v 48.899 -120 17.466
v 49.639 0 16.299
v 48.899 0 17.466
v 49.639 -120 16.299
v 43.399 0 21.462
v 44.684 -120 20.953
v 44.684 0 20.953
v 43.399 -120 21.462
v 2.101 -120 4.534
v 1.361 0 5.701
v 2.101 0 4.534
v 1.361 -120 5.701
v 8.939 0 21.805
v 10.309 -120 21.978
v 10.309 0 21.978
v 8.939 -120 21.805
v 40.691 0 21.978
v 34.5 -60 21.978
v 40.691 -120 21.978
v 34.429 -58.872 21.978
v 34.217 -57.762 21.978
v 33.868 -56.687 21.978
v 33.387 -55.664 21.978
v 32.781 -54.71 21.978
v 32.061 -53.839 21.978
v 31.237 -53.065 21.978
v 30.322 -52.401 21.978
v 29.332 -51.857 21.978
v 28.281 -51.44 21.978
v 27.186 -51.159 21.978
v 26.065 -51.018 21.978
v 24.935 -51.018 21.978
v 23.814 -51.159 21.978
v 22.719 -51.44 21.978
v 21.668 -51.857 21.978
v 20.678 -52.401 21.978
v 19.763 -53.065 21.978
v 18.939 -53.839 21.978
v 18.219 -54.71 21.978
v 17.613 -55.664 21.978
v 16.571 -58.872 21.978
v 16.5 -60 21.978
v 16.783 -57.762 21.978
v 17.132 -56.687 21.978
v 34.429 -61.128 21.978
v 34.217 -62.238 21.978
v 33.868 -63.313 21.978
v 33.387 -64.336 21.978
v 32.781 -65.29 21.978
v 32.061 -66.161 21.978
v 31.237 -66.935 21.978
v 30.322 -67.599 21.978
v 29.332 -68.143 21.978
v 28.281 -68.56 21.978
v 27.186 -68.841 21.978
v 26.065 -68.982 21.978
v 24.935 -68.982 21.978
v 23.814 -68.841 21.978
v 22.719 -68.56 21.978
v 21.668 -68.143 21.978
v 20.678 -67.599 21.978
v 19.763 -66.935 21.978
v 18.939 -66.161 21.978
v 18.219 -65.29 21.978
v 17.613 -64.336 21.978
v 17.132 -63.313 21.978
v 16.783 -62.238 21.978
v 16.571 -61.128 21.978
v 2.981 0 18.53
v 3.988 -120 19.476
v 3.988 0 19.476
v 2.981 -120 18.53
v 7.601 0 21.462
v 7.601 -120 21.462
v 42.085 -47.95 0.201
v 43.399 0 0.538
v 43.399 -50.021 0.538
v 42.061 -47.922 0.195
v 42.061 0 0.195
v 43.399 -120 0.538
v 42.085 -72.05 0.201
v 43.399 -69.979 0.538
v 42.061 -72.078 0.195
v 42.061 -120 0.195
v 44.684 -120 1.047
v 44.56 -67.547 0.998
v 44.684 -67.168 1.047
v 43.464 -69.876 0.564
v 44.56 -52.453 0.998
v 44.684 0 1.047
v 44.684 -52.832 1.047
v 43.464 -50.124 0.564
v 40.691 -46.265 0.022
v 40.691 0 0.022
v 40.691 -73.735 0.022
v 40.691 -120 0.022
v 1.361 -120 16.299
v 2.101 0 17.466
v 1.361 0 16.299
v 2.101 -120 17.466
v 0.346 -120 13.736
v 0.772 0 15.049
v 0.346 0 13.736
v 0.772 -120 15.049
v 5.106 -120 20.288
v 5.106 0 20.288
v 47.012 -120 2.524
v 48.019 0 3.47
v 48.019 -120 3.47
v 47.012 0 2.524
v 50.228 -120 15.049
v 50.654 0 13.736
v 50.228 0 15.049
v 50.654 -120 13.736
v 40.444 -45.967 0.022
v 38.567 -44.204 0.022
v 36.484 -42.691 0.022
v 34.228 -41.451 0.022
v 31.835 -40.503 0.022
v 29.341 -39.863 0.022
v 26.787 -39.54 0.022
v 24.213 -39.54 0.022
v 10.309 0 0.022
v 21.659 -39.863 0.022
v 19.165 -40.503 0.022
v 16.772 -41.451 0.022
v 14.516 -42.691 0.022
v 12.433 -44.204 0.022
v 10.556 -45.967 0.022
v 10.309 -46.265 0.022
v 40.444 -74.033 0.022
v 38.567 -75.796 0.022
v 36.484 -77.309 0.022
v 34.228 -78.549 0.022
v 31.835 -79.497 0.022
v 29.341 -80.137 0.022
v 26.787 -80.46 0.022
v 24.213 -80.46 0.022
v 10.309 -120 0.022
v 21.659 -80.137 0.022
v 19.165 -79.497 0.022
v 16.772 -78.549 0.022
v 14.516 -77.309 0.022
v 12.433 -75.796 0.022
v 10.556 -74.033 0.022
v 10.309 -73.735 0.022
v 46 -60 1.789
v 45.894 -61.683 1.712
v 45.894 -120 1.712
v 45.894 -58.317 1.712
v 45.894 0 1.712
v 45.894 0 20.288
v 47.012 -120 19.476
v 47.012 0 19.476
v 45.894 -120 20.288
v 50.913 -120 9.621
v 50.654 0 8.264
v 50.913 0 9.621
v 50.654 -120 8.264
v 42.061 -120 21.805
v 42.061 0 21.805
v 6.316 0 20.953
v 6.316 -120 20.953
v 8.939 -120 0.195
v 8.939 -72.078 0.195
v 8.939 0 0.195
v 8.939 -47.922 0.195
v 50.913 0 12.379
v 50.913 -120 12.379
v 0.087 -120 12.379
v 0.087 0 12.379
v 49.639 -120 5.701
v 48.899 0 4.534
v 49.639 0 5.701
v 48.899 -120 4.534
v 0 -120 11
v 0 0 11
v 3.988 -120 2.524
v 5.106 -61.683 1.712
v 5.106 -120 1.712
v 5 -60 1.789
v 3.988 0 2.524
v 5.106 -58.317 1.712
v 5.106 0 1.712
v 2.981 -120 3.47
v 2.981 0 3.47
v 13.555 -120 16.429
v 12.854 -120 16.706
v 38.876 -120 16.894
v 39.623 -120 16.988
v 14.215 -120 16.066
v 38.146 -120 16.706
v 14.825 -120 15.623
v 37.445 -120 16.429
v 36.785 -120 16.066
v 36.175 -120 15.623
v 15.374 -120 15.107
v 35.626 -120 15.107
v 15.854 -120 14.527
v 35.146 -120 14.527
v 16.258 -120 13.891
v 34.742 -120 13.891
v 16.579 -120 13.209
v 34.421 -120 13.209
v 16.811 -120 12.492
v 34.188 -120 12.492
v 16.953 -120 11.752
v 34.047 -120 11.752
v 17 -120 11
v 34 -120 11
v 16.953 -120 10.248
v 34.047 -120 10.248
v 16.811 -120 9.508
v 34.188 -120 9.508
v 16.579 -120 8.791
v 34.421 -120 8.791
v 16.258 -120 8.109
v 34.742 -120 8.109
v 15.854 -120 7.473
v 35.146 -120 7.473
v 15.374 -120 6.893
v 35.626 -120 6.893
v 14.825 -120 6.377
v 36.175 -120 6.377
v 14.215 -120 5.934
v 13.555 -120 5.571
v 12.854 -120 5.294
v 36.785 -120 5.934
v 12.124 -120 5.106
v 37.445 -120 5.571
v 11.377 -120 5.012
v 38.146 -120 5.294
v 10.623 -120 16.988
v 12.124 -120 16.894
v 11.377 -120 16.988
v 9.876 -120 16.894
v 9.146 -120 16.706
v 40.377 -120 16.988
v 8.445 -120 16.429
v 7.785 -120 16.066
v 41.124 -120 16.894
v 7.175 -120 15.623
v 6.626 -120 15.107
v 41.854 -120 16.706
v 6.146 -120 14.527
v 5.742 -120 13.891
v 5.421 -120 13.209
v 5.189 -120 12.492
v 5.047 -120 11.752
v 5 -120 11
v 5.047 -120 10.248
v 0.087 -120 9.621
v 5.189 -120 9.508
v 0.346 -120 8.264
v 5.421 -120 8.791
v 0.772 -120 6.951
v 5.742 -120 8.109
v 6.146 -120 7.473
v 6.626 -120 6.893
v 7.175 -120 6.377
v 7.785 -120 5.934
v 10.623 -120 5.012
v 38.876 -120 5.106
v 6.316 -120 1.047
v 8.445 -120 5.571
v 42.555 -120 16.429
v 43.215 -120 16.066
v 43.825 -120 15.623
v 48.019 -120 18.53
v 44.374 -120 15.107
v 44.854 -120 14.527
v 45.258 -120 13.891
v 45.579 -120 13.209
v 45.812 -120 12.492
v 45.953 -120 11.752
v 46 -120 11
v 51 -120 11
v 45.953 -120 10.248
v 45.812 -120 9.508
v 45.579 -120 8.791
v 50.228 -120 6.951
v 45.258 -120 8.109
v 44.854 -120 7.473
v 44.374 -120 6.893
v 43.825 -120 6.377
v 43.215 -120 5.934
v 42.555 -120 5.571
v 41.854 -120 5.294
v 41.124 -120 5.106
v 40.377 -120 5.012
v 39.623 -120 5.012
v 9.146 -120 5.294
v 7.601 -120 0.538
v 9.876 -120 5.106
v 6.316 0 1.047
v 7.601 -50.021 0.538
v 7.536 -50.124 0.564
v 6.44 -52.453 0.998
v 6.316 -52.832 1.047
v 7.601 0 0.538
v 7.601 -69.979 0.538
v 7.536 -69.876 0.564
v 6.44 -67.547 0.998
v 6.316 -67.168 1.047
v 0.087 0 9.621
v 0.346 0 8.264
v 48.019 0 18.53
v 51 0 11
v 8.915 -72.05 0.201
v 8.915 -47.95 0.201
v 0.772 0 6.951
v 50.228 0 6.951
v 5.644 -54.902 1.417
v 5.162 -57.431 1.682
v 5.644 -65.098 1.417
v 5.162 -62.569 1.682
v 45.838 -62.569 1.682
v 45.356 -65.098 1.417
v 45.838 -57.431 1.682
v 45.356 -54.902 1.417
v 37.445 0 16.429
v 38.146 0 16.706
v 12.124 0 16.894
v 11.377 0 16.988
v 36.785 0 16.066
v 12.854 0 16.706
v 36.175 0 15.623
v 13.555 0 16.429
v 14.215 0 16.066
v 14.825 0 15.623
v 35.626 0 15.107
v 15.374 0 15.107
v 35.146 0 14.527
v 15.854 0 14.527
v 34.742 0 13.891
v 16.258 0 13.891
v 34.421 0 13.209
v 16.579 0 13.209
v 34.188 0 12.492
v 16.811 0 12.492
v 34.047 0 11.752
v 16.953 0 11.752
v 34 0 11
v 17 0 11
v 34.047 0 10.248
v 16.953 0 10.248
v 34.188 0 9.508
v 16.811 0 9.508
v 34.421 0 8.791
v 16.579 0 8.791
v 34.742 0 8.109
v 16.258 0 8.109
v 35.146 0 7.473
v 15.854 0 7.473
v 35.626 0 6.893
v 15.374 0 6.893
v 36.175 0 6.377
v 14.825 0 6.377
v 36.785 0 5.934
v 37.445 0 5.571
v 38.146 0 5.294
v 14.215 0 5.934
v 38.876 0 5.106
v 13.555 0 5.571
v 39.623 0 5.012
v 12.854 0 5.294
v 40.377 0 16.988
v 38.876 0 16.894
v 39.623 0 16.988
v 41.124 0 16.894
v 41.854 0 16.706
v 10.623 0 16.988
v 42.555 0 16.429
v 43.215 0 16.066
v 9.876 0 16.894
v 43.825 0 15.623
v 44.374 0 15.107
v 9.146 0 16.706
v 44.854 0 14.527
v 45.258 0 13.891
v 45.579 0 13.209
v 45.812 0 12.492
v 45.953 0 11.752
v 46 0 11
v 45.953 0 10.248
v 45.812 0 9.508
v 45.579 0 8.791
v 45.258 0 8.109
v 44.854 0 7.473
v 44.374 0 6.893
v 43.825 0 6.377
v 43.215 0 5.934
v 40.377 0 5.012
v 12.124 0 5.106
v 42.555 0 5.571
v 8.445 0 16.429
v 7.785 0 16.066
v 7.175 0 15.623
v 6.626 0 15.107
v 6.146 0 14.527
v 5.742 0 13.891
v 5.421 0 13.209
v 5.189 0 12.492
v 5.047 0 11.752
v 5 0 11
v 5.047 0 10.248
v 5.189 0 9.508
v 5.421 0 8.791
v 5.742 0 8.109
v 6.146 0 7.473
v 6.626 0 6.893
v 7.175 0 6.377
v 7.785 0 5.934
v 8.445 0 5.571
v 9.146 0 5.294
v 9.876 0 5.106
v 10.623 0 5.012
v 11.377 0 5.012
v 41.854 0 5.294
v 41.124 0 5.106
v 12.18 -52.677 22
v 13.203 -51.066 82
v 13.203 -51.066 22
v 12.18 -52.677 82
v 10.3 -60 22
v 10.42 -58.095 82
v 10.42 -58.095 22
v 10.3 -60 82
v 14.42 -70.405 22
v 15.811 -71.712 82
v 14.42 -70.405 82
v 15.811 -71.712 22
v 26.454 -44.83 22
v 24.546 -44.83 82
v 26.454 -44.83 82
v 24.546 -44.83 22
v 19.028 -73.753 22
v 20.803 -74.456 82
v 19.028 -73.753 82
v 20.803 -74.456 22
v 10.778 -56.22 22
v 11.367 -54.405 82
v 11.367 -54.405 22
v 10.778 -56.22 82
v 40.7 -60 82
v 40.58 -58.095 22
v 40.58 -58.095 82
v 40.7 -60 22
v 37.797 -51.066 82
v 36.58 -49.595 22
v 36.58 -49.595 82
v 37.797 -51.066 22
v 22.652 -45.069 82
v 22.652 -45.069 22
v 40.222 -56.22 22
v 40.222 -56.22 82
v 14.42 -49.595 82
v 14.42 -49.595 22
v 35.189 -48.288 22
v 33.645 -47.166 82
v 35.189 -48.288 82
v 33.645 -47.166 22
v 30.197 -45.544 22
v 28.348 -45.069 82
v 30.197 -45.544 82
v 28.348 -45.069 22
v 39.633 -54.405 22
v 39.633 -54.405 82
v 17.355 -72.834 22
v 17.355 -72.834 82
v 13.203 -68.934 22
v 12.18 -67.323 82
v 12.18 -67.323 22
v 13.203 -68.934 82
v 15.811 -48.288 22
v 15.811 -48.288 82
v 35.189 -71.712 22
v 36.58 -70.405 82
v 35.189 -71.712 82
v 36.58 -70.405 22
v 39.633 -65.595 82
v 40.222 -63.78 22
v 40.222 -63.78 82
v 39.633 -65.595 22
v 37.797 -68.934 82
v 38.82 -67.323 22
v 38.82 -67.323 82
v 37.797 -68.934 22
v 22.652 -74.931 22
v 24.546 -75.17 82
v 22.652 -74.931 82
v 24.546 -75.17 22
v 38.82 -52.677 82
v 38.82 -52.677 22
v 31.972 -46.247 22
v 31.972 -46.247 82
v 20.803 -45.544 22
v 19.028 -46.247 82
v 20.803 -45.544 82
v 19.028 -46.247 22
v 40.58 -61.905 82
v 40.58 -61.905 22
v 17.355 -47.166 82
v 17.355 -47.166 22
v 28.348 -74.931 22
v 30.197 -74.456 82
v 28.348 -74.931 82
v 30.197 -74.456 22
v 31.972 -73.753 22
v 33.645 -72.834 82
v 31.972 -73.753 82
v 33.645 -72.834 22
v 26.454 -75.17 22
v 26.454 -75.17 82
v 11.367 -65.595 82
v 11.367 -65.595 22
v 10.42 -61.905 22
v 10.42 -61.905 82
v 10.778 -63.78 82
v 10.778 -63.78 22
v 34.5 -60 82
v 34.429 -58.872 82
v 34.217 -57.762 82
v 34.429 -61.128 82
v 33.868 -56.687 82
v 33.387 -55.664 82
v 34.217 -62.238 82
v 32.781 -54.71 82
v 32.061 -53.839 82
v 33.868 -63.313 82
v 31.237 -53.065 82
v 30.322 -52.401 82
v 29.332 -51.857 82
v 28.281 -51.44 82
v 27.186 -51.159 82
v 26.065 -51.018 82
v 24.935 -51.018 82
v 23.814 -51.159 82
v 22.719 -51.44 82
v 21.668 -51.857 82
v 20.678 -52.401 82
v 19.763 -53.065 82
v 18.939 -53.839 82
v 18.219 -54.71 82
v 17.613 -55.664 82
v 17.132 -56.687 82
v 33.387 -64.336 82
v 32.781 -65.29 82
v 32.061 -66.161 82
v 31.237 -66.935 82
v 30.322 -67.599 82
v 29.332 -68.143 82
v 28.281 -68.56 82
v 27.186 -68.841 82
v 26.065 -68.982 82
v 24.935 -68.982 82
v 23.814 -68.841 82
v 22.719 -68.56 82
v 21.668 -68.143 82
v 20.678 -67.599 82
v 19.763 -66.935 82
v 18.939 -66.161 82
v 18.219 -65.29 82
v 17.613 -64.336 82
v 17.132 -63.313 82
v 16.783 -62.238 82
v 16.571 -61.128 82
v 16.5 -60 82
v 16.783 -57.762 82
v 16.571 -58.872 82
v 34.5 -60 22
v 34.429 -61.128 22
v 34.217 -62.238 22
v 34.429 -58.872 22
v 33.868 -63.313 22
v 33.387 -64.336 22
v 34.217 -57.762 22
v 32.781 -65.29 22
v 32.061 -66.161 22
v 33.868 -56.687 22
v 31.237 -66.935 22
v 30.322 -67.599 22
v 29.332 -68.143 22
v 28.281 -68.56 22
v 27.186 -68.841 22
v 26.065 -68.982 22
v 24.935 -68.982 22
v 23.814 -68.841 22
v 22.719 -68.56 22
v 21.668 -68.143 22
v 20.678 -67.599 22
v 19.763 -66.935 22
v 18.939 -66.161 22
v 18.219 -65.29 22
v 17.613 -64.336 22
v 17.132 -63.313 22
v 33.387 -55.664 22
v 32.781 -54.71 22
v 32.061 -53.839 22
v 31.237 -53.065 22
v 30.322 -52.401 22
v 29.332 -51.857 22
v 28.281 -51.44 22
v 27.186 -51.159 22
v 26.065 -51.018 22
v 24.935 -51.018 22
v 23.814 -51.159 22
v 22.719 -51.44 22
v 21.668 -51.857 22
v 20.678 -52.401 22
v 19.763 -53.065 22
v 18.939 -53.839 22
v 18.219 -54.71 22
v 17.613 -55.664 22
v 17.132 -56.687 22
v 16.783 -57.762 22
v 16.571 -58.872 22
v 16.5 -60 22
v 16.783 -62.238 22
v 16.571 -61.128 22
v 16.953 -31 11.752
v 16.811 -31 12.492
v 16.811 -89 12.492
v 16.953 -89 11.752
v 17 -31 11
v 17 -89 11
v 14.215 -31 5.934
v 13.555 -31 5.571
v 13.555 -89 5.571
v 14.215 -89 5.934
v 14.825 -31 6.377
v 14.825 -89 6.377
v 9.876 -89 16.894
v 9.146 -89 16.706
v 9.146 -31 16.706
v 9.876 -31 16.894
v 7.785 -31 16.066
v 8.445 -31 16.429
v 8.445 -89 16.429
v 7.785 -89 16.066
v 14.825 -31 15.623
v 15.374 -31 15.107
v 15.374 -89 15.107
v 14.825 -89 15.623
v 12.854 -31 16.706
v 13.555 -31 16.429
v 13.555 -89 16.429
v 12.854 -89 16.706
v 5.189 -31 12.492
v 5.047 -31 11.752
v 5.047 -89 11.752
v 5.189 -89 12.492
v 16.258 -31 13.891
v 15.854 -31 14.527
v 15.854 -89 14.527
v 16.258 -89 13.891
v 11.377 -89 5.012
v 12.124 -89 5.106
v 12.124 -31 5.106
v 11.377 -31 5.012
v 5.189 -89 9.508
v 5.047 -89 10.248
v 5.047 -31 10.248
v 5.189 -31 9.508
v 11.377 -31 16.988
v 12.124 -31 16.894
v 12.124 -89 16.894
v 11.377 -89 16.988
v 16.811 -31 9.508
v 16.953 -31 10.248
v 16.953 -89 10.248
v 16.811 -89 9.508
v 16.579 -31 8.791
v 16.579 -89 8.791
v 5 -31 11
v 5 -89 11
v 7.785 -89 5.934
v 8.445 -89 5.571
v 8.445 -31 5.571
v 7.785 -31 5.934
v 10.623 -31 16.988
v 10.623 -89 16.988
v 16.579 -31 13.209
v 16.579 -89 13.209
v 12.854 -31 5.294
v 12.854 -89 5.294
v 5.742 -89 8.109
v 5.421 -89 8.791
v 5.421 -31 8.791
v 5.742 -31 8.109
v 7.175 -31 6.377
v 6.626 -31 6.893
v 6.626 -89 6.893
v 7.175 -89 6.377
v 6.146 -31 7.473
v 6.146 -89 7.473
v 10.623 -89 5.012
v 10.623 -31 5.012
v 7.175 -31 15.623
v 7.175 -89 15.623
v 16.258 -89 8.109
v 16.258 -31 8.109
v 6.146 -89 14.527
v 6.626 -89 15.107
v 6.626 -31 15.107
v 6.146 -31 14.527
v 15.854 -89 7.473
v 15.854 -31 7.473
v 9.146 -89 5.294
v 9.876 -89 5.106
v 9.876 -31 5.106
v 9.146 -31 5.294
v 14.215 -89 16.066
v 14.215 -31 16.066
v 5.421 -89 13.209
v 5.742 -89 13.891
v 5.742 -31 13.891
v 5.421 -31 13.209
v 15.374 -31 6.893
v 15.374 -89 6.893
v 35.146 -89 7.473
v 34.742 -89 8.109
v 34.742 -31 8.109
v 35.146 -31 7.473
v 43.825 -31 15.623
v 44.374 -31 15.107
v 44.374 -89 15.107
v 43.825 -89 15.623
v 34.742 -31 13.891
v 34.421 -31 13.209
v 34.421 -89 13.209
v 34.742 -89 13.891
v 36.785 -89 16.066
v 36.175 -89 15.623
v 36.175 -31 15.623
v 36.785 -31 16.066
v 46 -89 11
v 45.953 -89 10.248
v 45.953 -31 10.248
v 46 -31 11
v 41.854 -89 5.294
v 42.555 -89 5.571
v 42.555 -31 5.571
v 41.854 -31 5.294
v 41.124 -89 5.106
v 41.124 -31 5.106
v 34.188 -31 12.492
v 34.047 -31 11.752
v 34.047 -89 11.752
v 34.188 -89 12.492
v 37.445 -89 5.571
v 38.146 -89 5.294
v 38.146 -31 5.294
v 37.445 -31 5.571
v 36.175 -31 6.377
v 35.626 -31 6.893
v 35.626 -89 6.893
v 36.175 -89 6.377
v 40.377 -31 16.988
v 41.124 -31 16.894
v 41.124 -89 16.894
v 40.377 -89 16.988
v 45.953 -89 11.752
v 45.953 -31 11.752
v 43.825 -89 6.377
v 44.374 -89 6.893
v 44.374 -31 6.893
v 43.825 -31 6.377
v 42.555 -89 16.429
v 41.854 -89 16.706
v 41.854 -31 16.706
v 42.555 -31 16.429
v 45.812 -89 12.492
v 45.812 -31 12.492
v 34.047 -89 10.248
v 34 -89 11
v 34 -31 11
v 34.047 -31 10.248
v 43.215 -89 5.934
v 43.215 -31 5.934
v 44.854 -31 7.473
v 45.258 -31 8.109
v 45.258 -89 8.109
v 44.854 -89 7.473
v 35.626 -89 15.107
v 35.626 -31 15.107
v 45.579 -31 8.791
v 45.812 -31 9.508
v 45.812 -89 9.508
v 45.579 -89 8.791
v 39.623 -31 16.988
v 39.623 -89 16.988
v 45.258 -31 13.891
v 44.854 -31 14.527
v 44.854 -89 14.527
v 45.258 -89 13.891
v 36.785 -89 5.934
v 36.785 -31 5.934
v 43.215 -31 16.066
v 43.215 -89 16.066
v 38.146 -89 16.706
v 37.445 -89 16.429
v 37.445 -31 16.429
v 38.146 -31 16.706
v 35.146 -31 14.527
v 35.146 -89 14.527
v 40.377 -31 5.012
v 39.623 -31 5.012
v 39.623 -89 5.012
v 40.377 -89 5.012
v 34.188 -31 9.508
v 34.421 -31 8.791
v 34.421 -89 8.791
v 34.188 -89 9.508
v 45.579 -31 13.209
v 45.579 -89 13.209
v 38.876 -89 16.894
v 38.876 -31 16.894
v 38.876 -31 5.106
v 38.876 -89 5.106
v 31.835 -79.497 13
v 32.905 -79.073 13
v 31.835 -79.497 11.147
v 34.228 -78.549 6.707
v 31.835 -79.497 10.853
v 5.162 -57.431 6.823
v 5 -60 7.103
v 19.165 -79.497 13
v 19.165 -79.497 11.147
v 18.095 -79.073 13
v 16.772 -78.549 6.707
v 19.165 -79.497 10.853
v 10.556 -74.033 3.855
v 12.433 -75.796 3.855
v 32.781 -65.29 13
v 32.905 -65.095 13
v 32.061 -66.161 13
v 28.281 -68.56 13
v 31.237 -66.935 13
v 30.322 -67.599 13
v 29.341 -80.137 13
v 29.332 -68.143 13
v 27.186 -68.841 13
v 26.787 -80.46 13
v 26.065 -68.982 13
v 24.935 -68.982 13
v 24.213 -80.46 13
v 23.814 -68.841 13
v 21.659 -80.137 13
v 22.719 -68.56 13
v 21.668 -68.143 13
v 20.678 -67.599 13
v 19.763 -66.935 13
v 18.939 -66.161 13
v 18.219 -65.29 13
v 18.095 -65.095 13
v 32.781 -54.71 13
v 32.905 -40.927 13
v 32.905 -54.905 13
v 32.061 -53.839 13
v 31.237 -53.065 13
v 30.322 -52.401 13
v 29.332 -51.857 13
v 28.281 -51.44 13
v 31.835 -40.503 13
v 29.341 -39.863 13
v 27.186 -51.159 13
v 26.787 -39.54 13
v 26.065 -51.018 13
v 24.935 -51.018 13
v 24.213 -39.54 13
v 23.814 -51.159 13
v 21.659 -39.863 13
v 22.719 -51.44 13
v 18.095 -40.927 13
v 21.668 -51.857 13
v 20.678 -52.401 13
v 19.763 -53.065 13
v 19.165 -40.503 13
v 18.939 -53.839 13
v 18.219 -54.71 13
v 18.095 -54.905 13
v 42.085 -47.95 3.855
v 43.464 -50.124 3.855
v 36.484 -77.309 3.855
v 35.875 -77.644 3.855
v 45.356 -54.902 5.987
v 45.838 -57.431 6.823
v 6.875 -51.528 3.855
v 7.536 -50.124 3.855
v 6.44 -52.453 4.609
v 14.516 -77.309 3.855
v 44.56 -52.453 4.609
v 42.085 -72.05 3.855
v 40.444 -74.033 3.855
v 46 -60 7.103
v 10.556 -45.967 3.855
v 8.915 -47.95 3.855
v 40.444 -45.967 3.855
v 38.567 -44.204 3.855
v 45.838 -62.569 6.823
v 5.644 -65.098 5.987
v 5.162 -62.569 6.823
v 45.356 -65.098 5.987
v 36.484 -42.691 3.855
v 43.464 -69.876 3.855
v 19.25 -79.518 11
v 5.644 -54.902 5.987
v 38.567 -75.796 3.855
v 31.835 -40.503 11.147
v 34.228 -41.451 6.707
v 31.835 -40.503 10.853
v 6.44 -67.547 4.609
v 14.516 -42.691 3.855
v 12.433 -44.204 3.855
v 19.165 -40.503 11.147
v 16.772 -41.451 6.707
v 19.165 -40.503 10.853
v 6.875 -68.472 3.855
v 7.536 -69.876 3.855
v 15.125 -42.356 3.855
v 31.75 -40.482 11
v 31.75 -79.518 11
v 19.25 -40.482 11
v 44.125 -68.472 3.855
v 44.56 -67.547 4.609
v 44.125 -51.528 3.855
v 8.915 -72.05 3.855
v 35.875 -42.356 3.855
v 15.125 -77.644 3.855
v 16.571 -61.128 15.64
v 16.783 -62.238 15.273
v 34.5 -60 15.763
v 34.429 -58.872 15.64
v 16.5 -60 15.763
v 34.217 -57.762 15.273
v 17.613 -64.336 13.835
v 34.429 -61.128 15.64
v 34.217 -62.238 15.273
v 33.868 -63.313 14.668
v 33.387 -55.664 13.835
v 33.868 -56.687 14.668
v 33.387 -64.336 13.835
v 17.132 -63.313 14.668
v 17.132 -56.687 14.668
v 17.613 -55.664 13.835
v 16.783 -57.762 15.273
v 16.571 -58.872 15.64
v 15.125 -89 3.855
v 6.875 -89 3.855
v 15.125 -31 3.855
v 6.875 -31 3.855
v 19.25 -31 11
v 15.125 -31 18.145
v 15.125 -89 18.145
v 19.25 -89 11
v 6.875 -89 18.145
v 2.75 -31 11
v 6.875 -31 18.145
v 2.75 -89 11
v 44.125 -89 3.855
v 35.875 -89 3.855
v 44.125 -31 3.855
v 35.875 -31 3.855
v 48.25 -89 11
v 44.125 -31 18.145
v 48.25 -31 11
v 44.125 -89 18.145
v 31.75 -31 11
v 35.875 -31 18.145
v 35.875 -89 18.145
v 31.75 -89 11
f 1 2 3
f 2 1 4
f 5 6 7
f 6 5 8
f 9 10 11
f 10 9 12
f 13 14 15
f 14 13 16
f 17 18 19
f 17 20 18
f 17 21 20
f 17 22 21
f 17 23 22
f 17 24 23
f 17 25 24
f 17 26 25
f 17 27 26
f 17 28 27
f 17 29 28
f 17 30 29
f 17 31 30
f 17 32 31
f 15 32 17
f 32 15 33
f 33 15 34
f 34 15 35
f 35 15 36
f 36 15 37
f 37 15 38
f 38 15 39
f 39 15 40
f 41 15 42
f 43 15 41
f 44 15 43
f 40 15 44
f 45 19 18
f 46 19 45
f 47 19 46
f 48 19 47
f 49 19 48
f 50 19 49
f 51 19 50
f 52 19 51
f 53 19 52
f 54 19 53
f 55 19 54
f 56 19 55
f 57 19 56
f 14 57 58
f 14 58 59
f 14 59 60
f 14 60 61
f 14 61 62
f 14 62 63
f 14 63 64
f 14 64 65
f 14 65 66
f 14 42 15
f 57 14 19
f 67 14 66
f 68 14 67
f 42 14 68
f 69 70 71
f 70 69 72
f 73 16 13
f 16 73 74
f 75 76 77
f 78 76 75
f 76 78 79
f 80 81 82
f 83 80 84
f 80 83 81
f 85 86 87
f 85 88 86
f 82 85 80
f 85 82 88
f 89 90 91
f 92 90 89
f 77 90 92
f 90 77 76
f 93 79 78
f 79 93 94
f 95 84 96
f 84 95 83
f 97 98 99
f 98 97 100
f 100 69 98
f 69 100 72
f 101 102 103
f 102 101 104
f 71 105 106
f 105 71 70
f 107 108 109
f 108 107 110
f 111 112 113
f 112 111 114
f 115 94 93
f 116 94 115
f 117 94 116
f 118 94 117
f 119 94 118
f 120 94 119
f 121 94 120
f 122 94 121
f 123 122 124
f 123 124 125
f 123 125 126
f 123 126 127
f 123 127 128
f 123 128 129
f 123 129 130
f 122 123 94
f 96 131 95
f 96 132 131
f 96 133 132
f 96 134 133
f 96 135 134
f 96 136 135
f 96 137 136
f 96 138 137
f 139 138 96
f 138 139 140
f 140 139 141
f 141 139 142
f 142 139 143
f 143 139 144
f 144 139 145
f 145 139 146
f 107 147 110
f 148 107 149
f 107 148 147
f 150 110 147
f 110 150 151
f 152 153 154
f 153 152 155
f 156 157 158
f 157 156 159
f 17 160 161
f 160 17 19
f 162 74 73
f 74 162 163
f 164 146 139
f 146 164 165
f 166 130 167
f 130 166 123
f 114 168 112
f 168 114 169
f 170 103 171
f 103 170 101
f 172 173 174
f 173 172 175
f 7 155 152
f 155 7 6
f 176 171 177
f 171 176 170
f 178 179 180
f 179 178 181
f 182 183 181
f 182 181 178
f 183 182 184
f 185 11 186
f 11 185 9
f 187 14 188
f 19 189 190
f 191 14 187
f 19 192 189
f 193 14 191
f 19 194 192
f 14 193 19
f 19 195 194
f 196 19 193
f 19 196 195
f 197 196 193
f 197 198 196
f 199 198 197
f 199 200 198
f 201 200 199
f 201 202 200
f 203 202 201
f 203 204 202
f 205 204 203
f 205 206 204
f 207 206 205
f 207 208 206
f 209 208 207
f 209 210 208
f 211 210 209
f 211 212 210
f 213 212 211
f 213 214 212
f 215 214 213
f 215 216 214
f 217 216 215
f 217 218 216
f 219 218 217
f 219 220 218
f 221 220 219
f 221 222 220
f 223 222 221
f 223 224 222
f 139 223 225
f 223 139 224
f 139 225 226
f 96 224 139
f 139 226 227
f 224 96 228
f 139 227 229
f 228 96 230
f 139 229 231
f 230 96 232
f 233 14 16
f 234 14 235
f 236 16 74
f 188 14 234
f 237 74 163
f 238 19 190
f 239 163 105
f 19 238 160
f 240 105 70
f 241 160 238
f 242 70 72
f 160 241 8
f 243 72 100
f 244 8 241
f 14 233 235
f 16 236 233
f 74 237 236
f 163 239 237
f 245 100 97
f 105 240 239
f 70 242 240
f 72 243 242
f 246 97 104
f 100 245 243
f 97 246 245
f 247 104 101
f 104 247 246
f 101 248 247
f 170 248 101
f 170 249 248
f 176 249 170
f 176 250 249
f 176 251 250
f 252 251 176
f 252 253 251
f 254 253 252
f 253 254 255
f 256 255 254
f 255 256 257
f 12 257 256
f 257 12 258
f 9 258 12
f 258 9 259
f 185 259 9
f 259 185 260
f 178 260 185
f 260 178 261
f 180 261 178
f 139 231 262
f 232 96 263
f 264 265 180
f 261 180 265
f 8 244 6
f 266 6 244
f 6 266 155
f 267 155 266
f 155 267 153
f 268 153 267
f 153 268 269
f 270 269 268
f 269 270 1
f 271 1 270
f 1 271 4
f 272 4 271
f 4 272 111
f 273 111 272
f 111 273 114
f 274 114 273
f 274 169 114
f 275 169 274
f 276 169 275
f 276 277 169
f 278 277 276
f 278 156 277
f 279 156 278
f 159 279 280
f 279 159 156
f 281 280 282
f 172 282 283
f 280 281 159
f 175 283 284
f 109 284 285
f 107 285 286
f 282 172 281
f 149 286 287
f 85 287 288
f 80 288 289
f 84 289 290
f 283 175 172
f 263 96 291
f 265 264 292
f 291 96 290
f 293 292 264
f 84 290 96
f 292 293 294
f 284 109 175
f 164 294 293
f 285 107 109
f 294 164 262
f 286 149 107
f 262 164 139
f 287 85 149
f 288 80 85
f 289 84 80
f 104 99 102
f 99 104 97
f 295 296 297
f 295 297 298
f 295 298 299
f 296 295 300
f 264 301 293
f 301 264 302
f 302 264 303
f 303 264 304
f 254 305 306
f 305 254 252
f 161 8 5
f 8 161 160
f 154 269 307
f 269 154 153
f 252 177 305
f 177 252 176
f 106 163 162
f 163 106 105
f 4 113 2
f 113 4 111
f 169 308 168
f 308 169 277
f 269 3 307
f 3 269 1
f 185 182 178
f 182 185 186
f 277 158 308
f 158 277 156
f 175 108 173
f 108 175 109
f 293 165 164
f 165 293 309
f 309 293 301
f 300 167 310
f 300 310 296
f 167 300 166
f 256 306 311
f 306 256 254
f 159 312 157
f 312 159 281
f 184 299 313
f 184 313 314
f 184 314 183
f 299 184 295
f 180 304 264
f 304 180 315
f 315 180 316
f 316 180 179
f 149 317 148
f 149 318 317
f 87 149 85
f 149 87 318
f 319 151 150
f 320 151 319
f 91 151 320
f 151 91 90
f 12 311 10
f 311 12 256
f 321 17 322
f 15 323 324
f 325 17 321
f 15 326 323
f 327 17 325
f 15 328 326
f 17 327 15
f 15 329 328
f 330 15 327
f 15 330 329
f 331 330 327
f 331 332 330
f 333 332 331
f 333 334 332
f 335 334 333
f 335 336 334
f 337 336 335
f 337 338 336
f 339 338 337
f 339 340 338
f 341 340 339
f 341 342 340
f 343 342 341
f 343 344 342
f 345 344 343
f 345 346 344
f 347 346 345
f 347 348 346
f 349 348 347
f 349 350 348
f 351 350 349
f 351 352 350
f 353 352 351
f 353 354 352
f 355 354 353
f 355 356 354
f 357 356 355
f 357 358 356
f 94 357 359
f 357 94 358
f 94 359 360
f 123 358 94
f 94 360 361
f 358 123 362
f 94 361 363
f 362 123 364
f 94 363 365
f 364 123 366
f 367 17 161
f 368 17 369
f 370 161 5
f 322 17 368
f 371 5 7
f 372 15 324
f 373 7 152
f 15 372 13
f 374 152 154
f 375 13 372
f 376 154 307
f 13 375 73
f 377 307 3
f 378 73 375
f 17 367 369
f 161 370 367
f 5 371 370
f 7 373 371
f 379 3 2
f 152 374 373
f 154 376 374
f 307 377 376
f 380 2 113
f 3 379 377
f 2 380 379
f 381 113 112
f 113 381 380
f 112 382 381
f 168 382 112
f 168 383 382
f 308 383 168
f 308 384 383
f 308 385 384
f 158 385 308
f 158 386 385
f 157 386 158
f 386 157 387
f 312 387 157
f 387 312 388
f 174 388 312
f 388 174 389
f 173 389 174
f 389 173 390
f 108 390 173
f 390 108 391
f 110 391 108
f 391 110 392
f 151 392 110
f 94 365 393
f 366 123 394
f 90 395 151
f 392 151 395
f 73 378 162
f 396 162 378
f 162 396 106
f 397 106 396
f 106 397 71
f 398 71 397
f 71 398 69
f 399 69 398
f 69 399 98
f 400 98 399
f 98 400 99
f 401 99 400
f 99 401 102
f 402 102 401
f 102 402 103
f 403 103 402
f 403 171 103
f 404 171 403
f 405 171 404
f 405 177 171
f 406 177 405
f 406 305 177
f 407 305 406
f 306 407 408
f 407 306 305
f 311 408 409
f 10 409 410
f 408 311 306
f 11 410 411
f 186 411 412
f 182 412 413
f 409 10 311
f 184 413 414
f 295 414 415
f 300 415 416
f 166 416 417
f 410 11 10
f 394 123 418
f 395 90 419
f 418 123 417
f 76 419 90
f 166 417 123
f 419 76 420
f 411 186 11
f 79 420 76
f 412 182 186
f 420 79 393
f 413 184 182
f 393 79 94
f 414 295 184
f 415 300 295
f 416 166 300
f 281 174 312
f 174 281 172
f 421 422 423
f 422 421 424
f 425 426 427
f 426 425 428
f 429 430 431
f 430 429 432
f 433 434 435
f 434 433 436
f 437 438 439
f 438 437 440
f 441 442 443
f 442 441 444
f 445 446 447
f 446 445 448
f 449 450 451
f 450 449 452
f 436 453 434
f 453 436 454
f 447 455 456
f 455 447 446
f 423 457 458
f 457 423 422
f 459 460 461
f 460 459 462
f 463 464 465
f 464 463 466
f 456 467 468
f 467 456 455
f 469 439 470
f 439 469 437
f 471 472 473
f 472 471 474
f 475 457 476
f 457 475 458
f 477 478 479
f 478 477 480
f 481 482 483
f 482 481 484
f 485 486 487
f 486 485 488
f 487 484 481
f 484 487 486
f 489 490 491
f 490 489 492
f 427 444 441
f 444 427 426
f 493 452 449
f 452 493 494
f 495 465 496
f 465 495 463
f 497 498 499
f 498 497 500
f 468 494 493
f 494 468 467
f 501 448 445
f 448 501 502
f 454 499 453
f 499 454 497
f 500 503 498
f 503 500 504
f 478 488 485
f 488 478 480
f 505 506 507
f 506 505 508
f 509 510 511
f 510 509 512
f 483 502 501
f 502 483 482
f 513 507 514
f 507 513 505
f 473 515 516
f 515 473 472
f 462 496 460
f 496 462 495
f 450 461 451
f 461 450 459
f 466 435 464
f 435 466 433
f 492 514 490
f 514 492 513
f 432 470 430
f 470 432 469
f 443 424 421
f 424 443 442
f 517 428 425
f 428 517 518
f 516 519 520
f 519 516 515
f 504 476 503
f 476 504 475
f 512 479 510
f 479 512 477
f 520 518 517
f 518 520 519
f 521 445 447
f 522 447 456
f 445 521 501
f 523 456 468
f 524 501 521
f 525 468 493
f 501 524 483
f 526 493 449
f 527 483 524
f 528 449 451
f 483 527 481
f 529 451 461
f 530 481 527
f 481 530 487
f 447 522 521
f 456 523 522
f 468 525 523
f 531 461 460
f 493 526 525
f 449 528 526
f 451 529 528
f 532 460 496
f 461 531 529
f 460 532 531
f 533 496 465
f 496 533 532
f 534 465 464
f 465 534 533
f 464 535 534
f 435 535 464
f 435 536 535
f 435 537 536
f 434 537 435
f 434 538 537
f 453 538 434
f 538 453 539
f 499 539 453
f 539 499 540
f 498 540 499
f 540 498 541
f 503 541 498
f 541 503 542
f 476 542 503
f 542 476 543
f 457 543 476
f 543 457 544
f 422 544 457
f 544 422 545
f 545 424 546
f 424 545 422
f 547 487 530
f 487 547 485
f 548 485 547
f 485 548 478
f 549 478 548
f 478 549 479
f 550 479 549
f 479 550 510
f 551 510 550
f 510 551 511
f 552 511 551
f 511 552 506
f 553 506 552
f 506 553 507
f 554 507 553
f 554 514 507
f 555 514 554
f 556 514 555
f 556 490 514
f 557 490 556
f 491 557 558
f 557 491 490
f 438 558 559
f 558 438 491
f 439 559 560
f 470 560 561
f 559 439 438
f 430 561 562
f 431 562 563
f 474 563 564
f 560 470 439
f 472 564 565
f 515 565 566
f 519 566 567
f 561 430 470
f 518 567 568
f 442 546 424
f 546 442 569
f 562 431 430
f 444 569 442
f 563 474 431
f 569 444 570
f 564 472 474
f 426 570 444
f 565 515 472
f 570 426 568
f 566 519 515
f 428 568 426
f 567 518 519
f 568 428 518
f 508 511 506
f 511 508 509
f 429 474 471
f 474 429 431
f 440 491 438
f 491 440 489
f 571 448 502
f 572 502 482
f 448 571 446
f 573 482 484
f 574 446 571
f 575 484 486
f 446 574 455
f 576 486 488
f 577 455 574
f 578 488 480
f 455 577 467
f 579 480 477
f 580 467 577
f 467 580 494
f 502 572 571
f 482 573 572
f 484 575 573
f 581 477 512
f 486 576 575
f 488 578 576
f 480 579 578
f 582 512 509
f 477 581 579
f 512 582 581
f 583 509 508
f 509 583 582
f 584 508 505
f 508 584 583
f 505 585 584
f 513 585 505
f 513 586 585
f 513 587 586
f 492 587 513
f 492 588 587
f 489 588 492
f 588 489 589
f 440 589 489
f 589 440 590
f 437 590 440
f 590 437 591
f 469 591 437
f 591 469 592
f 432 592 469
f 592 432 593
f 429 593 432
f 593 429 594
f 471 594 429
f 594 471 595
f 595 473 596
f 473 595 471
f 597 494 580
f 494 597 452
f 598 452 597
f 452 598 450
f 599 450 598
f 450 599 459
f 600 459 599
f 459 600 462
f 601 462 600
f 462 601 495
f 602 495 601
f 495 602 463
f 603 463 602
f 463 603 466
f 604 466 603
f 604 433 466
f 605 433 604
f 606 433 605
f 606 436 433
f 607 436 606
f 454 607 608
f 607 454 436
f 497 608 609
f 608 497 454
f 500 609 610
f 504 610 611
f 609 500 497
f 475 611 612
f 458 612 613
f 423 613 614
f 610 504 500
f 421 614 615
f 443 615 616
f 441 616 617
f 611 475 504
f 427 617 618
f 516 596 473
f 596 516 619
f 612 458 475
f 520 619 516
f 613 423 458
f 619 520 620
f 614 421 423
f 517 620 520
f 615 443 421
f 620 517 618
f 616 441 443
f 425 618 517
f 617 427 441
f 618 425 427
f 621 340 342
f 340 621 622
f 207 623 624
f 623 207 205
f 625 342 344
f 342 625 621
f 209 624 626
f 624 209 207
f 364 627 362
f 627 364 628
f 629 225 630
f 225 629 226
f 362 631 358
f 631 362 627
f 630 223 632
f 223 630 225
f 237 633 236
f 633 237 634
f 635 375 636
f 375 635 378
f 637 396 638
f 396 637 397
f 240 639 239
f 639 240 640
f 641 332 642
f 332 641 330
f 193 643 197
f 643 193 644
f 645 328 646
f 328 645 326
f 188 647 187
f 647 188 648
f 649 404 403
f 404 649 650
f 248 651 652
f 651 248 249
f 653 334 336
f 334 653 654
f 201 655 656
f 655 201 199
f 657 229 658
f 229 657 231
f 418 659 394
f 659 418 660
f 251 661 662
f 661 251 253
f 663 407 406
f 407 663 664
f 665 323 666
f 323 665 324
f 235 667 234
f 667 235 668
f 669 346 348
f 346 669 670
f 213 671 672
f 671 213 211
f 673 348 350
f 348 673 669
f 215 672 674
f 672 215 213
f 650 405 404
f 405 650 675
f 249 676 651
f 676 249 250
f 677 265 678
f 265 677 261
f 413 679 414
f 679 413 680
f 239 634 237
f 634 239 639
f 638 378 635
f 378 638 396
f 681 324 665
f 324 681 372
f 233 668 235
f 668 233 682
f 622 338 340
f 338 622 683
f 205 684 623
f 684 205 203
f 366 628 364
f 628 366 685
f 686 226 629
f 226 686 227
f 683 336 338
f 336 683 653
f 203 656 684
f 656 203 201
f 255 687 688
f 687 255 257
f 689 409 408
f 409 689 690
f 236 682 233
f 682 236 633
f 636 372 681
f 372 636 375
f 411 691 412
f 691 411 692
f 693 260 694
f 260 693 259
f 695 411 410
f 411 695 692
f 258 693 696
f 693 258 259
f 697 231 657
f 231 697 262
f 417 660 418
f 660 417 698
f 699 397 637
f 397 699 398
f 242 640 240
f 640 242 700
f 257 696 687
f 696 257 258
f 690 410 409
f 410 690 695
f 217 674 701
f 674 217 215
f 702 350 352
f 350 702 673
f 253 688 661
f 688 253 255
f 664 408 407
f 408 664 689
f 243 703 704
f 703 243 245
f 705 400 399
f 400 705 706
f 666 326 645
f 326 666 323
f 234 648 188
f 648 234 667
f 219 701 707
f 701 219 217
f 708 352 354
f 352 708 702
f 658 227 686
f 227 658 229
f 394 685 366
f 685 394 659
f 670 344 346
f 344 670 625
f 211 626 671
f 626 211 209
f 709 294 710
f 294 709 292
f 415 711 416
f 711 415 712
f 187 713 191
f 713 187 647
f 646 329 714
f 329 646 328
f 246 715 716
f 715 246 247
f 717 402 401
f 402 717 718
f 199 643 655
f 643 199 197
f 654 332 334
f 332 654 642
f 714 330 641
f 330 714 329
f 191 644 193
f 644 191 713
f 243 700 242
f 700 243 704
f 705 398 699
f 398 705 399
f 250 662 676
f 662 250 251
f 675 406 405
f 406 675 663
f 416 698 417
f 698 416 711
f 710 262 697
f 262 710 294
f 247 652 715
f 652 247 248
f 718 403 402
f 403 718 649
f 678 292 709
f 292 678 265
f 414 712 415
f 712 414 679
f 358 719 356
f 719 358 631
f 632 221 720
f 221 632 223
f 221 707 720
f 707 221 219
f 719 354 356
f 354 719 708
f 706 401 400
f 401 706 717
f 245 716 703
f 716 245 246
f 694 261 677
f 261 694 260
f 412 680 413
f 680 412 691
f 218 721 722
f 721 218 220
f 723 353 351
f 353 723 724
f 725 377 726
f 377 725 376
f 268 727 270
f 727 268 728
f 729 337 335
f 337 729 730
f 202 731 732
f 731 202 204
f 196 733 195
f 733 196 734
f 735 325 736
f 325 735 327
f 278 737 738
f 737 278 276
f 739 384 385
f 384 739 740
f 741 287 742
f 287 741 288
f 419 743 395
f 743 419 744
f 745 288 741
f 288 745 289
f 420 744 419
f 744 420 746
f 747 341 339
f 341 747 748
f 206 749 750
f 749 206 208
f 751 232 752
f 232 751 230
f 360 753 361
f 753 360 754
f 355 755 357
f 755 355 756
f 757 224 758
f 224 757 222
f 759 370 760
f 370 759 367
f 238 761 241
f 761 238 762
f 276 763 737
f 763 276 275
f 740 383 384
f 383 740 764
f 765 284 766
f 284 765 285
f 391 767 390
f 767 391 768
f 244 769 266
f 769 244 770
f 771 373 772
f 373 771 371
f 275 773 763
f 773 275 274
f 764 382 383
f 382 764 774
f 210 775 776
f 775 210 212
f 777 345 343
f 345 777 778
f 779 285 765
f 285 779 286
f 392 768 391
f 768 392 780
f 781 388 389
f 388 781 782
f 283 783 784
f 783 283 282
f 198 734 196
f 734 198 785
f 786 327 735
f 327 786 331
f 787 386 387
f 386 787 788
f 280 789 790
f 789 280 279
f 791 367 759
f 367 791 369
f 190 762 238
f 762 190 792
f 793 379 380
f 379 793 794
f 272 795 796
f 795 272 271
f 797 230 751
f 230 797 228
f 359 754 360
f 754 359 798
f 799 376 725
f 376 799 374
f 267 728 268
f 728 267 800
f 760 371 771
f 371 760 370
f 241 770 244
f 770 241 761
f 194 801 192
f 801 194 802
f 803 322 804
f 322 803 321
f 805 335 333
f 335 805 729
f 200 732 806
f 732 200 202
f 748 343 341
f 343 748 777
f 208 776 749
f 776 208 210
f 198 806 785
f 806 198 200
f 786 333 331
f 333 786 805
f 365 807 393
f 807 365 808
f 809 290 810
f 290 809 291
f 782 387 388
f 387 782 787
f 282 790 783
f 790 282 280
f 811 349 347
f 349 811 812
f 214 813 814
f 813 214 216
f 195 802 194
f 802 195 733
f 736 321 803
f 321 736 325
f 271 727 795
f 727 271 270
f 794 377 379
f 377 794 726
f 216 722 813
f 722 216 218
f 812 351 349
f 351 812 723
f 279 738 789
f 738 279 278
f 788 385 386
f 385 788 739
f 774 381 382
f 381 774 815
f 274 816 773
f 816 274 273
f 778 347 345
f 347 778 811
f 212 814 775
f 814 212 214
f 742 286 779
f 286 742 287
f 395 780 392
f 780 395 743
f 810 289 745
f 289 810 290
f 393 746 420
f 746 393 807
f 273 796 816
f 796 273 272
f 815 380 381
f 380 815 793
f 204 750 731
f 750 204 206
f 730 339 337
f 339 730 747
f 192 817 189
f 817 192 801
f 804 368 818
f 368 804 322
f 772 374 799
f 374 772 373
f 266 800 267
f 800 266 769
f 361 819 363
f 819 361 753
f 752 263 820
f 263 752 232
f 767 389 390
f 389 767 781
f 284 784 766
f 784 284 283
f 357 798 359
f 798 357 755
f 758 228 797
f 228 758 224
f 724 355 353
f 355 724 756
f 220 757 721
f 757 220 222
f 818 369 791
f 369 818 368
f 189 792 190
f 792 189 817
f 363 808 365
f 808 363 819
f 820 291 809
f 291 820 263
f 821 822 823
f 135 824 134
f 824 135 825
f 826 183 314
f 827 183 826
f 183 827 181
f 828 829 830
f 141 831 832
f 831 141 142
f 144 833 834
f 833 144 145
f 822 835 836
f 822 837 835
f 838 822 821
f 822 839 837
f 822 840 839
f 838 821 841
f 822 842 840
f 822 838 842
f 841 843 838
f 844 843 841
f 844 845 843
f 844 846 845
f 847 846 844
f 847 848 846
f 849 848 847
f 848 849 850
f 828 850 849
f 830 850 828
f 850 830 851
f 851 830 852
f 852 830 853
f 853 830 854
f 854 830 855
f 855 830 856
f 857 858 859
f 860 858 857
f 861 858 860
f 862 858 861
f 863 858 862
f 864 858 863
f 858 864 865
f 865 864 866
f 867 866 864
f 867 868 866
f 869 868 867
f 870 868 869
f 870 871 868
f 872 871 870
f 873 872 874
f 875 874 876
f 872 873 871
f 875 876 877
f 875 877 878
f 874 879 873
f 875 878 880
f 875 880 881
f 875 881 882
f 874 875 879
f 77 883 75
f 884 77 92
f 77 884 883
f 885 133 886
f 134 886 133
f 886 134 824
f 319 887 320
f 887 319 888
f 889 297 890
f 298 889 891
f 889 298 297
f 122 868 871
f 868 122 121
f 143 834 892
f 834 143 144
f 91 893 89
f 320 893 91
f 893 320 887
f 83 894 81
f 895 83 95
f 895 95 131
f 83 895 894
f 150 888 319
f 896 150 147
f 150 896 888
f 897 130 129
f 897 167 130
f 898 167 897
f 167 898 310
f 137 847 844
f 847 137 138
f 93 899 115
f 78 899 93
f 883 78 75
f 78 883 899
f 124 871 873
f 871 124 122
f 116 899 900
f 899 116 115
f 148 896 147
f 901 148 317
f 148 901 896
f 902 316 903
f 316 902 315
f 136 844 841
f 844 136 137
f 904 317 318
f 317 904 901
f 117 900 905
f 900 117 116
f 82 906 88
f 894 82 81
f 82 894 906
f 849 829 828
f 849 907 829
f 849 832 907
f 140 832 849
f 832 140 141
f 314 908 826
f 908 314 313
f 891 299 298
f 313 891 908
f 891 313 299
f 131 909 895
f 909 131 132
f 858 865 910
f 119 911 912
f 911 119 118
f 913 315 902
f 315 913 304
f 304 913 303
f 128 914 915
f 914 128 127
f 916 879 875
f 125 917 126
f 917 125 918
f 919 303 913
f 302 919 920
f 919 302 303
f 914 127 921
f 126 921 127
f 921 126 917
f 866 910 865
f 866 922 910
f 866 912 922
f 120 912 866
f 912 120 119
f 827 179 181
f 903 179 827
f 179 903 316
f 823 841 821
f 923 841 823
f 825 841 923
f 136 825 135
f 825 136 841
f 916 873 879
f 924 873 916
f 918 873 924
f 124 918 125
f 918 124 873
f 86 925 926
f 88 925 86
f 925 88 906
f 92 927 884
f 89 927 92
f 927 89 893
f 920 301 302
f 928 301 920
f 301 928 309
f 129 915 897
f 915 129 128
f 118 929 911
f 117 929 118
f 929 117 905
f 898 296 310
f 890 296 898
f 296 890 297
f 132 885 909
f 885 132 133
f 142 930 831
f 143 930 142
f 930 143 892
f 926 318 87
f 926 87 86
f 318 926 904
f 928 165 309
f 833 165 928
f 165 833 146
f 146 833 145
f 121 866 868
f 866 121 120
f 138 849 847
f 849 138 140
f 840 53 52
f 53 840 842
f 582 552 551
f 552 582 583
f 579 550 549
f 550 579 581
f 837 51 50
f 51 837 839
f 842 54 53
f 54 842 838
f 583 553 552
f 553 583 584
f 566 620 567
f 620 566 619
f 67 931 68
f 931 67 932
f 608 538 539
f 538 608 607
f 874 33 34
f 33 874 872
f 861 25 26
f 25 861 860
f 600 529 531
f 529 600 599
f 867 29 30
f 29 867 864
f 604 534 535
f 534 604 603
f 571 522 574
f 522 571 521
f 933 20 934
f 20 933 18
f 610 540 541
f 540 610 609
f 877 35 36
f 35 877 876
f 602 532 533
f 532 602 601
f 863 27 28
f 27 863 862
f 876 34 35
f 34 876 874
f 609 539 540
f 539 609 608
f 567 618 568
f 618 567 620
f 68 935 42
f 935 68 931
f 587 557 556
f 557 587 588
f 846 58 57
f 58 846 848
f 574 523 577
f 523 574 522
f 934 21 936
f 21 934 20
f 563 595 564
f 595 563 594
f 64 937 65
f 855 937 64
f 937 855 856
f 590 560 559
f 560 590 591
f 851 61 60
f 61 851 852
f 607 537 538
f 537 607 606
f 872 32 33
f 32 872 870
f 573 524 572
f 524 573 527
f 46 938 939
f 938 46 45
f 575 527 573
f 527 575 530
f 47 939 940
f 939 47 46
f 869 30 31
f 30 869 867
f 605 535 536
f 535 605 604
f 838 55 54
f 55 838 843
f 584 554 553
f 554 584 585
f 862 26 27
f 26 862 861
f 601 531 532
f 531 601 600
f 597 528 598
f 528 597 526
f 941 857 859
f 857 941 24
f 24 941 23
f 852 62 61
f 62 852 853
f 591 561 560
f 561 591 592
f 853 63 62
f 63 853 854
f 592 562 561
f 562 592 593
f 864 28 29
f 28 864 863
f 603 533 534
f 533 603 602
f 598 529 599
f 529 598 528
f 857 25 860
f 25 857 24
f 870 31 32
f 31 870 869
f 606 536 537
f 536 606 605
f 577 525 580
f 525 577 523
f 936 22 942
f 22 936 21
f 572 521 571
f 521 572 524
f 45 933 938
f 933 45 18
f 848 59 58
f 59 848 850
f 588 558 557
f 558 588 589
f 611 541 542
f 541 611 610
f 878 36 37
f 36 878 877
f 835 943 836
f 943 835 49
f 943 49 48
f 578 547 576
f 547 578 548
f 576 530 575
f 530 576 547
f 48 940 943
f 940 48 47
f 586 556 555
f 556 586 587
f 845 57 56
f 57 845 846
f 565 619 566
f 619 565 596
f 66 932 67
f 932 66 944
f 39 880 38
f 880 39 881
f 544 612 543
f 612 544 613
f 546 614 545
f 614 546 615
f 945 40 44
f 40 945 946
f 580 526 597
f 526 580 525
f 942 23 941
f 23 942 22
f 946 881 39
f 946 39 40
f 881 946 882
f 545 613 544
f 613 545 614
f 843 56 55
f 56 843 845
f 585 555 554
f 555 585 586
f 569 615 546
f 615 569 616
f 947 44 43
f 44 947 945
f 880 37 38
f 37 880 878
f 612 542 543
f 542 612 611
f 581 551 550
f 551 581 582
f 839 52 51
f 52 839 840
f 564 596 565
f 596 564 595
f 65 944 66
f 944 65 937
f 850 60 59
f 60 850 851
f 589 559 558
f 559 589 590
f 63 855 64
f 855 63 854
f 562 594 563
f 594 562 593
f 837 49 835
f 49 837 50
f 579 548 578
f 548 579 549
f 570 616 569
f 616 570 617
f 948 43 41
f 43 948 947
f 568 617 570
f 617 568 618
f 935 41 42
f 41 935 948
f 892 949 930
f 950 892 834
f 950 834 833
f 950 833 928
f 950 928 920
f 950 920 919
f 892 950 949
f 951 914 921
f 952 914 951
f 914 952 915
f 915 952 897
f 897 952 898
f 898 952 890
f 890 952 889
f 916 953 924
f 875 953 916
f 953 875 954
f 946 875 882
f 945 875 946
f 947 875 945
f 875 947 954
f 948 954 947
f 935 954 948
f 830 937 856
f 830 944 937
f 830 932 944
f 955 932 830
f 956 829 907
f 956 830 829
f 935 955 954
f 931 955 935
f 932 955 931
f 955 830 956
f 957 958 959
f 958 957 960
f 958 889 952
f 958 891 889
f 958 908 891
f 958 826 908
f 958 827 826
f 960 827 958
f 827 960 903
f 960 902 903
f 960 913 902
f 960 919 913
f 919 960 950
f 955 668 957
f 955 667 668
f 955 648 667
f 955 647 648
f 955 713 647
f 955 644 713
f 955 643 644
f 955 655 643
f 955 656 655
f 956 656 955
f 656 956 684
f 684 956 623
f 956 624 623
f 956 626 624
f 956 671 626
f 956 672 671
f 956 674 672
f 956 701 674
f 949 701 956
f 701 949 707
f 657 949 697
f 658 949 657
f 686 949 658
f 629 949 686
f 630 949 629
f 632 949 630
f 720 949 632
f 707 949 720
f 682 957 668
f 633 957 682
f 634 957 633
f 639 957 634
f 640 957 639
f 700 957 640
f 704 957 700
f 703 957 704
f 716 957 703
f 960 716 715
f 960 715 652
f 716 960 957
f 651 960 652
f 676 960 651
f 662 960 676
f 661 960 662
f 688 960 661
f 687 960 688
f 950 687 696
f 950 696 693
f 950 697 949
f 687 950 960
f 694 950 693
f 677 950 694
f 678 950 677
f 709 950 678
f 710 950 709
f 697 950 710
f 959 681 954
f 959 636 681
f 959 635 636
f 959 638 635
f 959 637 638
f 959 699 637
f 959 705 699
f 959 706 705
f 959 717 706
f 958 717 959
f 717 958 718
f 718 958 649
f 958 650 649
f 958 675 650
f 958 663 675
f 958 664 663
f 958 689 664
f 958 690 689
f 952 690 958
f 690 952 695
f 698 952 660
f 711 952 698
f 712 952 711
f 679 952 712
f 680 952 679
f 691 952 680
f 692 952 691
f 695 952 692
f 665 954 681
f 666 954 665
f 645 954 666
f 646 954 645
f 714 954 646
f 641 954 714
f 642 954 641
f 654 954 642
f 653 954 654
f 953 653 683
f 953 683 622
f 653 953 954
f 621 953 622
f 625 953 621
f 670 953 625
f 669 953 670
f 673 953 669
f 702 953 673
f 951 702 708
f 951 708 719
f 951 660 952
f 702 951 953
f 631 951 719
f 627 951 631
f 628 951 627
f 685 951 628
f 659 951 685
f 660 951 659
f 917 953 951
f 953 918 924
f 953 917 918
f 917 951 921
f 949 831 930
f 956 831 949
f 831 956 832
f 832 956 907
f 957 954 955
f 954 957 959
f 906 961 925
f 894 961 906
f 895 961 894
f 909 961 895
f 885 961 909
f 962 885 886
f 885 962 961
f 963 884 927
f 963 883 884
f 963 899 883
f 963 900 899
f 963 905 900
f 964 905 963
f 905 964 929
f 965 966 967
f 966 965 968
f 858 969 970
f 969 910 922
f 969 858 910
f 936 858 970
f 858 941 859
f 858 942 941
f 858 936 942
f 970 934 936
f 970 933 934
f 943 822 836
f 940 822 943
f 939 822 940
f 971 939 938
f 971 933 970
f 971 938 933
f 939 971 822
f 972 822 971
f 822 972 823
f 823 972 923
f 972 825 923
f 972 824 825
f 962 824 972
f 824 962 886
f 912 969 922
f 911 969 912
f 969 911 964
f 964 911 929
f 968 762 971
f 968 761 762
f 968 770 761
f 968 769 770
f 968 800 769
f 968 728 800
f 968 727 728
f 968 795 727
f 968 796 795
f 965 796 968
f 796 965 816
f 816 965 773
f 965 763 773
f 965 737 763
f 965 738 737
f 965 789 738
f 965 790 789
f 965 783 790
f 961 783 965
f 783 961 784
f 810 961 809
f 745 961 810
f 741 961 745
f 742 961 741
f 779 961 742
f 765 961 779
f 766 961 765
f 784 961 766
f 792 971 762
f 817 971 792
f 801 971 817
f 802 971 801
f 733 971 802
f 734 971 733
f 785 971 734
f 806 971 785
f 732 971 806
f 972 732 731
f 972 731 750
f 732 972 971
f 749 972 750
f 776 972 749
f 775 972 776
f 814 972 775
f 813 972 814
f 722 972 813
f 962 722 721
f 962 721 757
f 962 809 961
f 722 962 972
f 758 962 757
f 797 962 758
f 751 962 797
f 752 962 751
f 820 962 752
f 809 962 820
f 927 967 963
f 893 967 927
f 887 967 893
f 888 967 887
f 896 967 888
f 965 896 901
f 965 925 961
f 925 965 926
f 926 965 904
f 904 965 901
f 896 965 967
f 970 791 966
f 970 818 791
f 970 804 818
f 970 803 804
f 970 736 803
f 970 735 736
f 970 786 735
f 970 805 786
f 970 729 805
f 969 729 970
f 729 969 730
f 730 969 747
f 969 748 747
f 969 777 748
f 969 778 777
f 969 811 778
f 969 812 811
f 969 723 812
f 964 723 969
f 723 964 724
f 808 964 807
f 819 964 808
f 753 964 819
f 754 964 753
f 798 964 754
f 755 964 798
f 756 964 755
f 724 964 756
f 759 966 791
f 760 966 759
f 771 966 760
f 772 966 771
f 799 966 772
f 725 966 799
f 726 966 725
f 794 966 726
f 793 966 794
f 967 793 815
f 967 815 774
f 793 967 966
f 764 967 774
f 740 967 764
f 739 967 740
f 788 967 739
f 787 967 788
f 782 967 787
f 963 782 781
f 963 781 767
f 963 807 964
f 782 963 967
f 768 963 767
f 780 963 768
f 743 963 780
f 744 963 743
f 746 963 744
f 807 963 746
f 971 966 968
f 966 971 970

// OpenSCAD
//measurements

//https://www.lofty.com/pages/how-to-measure-three-dimensional-objects-including-silver-ceramics-glass-sculpture


//main body (looking from front)

main_body_height = 22;
main_body_width = 120;
main_body_depth = 51;
main_body_distance_between_two_main_bodies = 29; 

//main body tube
main_body_tube_diameter = 22;
//Tube bit

tube_bit_height = 60;
tube_bit_diameter = 30.4;
tube_bit_hole_diameter = 18;

//bearing

bearing_diameter = 41;
bearing_height = 13;

//nut
nut_height = 8.5;
nut_width = 16.5;


 

//threaded shaft
threaded_shaft_diameter = 12;



module tube_bit(){
            cylinder(h=tube_bit_height, r=(tube_bit_diameter)/2, $fn=50);
}
module tube_bit_hole_inside(){
    cylinder(h=tube_bit_height+(main_body_height-bearing_height), r=(tube_bit_hole_diameter)/2, $fn=50);
}
    
module main_body_tube(){
    translate([main_body_height/2,0,main_body_height/2]){
        rotate ([90,0,0])
            cylinder(h=main_body_width, r=(main_body_tube_diameter)/2, $fn=50);
    }
}
module bearing(){
    //translate([main_body_depth/2,-main_body_width/2,0])
    cylinder(h=bearing_height, r=(bearing_diameter)/2, $fn=50);
}
module nut(){
    cylinder(h=bearing_diameter+(nut_height*2), r=nut_width/2, $fn=6);
    }

module holes_for_threaded_shaft(){
     translate([main_body_height/2,0,main_body_height/2]){
        rotate ([90,0,0])
            cylinder(h=main_body_width, r=(threaded_shaft_diameter)/2, $fn=50);
    }
    translate([(main_body_height/2)+main_body_distance_between_two_main_bodies,0,main_body_height/2]){
        rotate ([90,0,0])
            cylinder(h=main_body_width, r=(threaded_shaft_diameter)/2, $fn=50);
    }
}

module nut_negative(x_offset,y_offset,z_offset){
    translate([main_body_height/2+x_offset,0+y_offset,(main_body_height/2)+z_offset]){
        rotate ([90,0,0])
            nut();
    }
}
module main_body(){
    difference(){
        union(){
        hull(){ // hull to join the 2 tubes
            main_body_tube();
            translate([main_body_distance_between_two_main_bodies,0,0]){//move the tube
                main_body_tube();}
            }
        translate([main_body_depth/2,-main_body_width/2,main_body_height]){
                tube_bit();}    
                }
        
     holes_for_threaded_shaft();            
     translate([main_body_depth/2,-main_body_width/2,0]){bearing();}
     translate([main_body_depth/2,-main_body_width/2,bearing_height]){
        tube_bit_hole_inside();
        }
color ("red") {nut_negative(0,-((main_body_width/2)-(bearing_diameter/2)-nut_height),0);}                   
color ("red") {nut_negative(main_body_distance_between_two_main_bodies,-((main_body_width/2)-(bearing_diameter/2)-nut_height),0);}                   

}
}

main_body();
